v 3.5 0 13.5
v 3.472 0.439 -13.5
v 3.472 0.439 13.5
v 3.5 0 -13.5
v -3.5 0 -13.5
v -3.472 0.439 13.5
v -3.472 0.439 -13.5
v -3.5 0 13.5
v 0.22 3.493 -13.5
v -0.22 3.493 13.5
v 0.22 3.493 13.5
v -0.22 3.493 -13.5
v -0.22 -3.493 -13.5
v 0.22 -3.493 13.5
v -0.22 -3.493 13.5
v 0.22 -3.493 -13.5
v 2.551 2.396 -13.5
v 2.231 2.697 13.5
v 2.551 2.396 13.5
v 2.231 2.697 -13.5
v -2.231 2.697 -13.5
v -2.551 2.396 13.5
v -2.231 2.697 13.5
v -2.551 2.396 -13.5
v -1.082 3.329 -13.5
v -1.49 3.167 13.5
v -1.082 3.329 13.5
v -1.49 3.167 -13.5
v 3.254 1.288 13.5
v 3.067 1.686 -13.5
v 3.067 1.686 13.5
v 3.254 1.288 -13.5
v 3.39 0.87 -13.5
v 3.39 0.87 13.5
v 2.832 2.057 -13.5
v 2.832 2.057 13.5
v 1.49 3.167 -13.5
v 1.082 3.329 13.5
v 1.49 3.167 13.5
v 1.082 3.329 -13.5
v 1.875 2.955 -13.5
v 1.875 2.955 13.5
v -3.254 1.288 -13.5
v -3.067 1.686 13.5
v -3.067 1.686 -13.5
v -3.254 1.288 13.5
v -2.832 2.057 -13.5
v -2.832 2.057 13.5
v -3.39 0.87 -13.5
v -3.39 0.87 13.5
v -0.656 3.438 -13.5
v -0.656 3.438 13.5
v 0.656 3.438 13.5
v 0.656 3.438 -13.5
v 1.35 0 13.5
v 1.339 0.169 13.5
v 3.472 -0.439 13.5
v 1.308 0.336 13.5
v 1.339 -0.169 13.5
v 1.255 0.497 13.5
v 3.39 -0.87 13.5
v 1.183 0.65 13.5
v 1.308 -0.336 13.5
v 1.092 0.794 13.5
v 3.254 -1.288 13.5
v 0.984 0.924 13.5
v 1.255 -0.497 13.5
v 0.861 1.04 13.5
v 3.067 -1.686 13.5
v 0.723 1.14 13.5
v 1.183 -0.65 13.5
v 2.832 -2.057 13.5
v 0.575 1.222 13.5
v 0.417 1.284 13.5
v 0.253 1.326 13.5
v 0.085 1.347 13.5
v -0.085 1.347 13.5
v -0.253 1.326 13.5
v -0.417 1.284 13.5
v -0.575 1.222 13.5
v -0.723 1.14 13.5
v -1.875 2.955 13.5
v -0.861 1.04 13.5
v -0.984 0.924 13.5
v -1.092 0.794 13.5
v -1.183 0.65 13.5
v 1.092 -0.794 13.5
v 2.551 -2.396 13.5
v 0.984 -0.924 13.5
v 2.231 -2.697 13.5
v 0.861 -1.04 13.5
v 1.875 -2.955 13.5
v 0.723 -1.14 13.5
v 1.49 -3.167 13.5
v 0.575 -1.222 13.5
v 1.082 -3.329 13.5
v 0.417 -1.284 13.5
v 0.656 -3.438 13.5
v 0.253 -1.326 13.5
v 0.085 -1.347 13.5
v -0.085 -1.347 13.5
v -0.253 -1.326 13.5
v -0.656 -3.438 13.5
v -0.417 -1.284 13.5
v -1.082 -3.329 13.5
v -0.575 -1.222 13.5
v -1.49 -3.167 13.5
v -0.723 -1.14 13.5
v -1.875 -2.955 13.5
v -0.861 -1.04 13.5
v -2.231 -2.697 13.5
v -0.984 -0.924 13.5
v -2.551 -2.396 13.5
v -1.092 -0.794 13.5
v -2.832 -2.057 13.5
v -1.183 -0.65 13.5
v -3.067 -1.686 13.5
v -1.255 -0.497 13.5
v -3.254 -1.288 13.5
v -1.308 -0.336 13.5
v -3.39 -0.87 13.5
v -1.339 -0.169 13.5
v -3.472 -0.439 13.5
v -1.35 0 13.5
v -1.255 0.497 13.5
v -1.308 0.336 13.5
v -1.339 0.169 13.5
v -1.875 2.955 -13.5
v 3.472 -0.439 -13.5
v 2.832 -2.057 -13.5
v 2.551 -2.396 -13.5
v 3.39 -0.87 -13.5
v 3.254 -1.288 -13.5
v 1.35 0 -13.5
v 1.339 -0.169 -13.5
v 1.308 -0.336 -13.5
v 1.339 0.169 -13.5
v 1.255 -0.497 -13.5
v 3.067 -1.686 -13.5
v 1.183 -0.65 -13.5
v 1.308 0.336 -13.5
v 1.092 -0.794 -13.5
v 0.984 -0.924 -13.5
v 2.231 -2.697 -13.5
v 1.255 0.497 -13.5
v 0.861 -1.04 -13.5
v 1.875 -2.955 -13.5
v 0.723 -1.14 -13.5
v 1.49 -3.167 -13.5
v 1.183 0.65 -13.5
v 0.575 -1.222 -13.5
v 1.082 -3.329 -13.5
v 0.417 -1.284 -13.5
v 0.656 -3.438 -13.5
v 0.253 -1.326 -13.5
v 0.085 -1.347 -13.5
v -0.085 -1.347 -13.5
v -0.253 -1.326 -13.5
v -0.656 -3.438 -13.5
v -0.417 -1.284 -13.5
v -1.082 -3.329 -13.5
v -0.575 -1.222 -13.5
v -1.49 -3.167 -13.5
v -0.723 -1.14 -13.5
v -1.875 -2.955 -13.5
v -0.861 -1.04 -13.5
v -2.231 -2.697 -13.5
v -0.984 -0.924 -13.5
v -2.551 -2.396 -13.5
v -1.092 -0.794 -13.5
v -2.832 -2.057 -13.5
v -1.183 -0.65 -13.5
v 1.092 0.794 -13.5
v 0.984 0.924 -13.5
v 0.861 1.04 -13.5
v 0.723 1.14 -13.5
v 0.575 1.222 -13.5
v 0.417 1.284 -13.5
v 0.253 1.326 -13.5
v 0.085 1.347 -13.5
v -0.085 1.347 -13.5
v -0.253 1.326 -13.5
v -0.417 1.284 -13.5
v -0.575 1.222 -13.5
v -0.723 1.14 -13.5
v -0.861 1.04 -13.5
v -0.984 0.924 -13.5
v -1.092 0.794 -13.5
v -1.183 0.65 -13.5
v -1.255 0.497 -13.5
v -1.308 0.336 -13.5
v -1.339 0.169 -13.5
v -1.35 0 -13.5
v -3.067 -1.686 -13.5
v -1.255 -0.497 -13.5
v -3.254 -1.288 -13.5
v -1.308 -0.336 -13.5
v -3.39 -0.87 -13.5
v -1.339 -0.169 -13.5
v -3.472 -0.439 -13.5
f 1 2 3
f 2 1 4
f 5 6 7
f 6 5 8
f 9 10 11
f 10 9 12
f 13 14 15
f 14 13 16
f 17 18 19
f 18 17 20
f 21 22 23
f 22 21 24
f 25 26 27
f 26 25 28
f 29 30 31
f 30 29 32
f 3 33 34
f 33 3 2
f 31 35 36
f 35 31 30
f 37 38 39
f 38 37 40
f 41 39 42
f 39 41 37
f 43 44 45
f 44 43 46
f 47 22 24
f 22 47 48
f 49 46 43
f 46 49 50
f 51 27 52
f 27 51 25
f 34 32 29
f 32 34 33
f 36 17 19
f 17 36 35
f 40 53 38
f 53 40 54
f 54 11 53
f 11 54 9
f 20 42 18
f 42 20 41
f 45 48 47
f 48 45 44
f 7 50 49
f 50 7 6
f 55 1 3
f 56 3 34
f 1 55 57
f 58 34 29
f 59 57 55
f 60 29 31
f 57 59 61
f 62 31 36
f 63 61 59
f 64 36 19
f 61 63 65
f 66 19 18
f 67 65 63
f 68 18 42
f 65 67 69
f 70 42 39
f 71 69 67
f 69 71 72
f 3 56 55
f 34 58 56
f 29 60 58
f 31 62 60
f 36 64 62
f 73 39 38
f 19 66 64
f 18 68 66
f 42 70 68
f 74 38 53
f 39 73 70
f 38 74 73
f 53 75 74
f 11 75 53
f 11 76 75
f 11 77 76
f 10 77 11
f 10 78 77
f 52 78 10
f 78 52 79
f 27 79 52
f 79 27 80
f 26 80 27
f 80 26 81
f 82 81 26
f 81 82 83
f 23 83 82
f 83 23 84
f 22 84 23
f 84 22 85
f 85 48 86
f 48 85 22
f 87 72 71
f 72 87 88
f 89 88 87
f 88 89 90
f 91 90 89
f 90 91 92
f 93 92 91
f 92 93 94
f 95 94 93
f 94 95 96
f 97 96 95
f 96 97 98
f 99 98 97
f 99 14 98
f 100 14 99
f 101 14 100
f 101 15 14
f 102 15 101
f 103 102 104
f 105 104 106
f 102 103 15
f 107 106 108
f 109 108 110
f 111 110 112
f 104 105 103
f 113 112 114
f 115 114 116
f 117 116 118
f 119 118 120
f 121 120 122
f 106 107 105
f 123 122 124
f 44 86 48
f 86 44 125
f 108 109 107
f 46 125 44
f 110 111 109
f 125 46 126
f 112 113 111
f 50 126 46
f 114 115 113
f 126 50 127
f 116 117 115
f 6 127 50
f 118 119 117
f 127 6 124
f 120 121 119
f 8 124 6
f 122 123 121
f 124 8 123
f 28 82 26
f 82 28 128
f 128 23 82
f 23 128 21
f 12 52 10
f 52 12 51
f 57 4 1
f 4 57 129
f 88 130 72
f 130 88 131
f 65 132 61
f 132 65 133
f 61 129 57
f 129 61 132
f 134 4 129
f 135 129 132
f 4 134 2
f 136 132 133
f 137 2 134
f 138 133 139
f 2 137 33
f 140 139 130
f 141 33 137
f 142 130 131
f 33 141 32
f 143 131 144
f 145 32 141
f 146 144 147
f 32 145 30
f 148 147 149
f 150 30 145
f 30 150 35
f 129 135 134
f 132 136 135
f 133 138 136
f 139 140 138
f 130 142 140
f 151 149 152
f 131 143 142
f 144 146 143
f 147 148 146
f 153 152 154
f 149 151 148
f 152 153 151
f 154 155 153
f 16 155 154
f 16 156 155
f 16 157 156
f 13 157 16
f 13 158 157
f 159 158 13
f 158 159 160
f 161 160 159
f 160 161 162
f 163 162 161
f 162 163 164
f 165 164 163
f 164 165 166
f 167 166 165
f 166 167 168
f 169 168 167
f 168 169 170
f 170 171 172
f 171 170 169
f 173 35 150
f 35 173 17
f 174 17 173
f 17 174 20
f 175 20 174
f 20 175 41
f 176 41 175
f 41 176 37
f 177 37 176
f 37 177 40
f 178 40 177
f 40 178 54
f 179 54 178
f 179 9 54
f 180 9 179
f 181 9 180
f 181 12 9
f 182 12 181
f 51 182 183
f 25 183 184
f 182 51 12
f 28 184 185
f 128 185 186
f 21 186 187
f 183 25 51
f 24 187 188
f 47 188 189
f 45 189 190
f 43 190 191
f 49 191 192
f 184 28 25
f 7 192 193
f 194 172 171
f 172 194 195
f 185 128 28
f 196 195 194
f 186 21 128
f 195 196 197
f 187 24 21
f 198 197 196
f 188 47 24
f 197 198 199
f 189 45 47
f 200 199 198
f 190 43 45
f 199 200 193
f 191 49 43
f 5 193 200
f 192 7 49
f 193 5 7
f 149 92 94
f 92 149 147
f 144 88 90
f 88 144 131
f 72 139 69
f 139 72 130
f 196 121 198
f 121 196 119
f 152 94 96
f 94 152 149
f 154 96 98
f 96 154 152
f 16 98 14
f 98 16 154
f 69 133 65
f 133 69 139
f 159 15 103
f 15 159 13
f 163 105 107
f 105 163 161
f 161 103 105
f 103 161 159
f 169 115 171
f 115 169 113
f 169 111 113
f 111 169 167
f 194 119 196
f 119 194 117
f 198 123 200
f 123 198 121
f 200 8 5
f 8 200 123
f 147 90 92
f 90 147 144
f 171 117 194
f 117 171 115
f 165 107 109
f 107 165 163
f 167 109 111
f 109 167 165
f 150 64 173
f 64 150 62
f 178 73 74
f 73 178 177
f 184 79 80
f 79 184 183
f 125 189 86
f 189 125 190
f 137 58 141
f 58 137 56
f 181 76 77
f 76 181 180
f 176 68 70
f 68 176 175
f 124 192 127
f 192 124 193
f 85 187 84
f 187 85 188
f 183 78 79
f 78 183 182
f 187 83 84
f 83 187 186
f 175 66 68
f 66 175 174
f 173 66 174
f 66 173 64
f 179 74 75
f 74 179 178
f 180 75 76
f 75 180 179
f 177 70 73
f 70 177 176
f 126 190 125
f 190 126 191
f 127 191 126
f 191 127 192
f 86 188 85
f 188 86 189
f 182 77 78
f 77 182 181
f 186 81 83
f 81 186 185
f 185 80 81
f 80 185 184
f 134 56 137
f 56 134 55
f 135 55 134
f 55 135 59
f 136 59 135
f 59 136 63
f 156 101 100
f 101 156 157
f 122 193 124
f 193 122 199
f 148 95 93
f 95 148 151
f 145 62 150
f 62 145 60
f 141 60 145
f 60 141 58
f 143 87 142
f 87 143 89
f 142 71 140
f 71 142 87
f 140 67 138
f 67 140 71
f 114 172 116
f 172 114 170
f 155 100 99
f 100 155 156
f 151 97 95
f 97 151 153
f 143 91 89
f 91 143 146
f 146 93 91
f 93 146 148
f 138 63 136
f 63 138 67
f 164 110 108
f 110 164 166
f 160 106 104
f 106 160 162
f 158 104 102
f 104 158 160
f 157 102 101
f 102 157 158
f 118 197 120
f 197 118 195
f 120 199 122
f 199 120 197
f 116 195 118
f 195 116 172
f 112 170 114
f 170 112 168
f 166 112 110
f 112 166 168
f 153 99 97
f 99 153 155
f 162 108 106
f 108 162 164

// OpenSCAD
$fn = 50;


difference() {
	union() {
		translate(v = [0, 0, -13.5000000000]) {
			cylinder(h = 27, r = 3.5000000000);
		}
	}
	union() {
		translate(v = [0, 0, -100.0000000000]) {
			cylinder(h = 200, r = 1.3500000000);
		}
	}
}
